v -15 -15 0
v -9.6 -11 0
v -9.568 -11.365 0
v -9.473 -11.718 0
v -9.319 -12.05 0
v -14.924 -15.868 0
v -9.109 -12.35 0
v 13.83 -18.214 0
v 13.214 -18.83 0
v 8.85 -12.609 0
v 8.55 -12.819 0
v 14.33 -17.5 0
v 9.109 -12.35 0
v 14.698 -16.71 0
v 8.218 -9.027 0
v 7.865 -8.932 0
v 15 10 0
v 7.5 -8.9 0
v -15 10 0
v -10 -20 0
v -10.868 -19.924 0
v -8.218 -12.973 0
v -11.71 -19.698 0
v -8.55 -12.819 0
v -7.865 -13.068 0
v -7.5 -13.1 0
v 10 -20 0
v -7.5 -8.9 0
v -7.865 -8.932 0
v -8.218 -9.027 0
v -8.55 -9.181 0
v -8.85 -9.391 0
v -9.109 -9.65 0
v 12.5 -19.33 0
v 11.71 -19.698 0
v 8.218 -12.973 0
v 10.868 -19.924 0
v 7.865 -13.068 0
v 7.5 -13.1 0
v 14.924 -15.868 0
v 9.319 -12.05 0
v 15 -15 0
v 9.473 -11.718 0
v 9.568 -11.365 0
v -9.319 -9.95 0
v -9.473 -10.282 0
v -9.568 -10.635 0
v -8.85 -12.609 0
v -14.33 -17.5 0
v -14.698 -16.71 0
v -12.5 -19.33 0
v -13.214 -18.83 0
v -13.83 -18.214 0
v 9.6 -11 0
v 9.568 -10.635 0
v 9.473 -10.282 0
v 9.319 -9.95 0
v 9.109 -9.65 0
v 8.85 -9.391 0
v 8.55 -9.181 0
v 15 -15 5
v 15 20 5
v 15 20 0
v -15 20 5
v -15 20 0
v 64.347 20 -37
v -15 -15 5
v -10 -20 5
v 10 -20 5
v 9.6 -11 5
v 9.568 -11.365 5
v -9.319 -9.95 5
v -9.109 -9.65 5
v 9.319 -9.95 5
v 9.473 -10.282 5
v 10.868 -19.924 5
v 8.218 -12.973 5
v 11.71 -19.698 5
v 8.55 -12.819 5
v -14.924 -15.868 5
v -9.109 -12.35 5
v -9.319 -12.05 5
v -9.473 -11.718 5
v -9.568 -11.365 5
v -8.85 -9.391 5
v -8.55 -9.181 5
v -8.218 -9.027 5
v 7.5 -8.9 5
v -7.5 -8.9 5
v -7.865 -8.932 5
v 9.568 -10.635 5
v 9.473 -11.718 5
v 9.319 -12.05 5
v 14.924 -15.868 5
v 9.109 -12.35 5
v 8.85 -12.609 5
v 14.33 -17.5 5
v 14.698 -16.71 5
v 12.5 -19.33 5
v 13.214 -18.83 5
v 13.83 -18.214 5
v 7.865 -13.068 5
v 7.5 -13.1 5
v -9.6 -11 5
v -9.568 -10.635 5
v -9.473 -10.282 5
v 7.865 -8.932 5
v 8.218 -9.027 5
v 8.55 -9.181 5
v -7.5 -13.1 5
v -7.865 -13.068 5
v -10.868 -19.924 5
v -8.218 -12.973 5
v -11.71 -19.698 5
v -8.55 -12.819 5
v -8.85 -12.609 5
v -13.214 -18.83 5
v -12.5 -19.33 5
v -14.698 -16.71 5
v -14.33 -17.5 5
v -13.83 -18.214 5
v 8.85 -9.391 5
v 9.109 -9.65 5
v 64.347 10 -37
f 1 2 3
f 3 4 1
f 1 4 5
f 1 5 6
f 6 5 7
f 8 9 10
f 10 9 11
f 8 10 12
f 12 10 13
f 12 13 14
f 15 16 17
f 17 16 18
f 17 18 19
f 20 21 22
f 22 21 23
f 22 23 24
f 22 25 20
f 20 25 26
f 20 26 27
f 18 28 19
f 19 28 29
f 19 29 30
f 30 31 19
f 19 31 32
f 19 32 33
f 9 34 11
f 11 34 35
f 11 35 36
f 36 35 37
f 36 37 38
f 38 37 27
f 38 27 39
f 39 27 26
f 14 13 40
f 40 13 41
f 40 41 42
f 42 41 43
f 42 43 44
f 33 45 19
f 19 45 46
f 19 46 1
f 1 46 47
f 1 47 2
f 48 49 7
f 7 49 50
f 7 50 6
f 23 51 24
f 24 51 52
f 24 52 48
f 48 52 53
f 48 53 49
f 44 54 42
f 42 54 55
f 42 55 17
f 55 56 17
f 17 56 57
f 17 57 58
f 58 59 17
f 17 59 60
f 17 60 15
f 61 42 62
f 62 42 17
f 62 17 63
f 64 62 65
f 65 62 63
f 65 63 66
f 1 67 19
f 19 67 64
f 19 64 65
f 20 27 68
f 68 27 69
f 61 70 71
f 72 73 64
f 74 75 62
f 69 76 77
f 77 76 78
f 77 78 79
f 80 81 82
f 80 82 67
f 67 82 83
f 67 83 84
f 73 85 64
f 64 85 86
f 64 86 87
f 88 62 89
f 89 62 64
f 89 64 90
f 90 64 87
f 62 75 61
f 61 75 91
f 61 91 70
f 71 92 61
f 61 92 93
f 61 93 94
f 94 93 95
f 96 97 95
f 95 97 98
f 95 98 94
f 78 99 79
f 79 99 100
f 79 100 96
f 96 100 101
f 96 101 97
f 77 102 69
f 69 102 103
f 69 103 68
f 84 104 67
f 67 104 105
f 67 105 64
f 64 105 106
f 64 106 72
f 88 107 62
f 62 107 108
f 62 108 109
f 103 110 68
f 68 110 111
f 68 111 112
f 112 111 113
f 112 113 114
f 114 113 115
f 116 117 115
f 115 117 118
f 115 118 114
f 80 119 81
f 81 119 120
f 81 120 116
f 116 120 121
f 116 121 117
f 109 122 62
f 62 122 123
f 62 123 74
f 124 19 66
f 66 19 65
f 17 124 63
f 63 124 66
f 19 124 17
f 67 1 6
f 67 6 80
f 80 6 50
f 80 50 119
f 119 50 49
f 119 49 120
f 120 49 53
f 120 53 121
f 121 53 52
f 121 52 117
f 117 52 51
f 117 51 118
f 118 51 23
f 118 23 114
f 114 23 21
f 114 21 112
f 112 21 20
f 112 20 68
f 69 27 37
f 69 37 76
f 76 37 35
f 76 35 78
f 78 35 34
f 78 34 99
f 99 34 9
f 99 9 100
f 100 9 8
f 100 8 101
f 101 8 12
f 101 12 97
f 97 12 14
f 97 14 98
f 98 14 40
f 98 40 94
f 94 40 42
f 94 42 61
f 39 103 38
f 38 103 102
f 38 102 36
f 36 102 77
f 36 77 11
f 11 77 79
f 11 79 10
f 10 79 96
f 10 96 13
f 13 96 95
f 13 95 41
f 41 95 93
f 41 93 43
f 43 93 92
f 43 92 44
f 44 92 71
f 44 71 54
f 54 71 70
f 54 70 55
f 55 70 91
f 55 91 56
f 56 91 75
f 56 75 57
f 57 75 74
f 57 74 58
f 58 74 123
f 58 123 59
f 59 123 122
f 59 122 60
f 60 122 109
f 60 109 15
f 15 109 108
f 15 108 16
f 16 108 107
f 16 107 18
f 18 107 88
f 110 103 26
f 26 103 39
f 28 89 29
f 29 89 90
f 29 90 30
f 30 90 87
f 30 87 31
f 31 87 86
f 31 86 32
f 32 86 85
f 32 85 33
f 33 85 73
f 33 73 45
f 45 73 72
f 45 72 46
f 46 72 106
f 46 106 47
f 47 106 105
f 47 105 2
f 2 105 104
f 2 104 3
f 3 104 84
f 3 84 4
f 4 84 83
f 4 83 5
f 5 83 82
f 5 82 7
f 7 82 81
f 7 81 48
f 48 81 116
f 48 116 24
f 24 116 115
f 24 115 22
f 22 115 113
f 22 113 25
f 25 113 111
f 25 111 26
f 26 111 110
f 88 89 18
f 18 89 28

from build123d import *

# Parameters (mm, degrees)
SKETCH1_W           = 30
SKETCH1_H           = 40
BOSS_EXTRUDE1_DEPTH = 5
BOSS_EXTRUDE2_DEPTH = 10
FILLET2_R           = 5
CUT_EXTRUDE1_DEPTH  = 10


with BuildPart() as part:
    # Sketch1 → Boss-Extrude1 (new body)
    with BuildSketch(Plane.XY):
        Rectangle(SKETCH1_W, SKETCH1_H)
    extrude(amount=BOSS_EXTRUDE1_DEPTH)

    # Sketch2 → Boss-Extrude2 (add)
    with BuildSketch(Plane(origin=(0, 20, 0), x_dir=(1, 0, 0), z_dir=(0, 1, 0))):
        Polygon((-15, 0), (64.346756059, 37), (15, 0), align=None)
    extrude(amount=-BOSS_EXTRUDE2_DEPTH)

    # Fillet2
    fillet2_edges = [part.edges().sort_by_distance(p)[0] for p in [
        (15, -20, 2.5),
        (-15, -20, 2.5),
    ]]
    fillet(fillet2_edges, radius=FILLET2_R)

    # Sketch4 → Cut-Extrude1 (cut)
    with BuildSketch(Plane.XY.offset(5)):
        with BuildLine():
            Line((7.5, -13.1), (-7.5, -13.1))
            ThreePointArc((-7.5, -13.1), (-9.6, -11), (-7.5, -8.9))
            Line((-7.5, -8.9), (7.5, -8.9))
            ThreePointArc((7.5, -8.9), (9.6, -11), (7.5, -13.1))
        make_face()
    extrude(amount=-CUT_EXTRUDE1_DEPTH, mode=Mode.SUBTRACT)


solid = part.part
